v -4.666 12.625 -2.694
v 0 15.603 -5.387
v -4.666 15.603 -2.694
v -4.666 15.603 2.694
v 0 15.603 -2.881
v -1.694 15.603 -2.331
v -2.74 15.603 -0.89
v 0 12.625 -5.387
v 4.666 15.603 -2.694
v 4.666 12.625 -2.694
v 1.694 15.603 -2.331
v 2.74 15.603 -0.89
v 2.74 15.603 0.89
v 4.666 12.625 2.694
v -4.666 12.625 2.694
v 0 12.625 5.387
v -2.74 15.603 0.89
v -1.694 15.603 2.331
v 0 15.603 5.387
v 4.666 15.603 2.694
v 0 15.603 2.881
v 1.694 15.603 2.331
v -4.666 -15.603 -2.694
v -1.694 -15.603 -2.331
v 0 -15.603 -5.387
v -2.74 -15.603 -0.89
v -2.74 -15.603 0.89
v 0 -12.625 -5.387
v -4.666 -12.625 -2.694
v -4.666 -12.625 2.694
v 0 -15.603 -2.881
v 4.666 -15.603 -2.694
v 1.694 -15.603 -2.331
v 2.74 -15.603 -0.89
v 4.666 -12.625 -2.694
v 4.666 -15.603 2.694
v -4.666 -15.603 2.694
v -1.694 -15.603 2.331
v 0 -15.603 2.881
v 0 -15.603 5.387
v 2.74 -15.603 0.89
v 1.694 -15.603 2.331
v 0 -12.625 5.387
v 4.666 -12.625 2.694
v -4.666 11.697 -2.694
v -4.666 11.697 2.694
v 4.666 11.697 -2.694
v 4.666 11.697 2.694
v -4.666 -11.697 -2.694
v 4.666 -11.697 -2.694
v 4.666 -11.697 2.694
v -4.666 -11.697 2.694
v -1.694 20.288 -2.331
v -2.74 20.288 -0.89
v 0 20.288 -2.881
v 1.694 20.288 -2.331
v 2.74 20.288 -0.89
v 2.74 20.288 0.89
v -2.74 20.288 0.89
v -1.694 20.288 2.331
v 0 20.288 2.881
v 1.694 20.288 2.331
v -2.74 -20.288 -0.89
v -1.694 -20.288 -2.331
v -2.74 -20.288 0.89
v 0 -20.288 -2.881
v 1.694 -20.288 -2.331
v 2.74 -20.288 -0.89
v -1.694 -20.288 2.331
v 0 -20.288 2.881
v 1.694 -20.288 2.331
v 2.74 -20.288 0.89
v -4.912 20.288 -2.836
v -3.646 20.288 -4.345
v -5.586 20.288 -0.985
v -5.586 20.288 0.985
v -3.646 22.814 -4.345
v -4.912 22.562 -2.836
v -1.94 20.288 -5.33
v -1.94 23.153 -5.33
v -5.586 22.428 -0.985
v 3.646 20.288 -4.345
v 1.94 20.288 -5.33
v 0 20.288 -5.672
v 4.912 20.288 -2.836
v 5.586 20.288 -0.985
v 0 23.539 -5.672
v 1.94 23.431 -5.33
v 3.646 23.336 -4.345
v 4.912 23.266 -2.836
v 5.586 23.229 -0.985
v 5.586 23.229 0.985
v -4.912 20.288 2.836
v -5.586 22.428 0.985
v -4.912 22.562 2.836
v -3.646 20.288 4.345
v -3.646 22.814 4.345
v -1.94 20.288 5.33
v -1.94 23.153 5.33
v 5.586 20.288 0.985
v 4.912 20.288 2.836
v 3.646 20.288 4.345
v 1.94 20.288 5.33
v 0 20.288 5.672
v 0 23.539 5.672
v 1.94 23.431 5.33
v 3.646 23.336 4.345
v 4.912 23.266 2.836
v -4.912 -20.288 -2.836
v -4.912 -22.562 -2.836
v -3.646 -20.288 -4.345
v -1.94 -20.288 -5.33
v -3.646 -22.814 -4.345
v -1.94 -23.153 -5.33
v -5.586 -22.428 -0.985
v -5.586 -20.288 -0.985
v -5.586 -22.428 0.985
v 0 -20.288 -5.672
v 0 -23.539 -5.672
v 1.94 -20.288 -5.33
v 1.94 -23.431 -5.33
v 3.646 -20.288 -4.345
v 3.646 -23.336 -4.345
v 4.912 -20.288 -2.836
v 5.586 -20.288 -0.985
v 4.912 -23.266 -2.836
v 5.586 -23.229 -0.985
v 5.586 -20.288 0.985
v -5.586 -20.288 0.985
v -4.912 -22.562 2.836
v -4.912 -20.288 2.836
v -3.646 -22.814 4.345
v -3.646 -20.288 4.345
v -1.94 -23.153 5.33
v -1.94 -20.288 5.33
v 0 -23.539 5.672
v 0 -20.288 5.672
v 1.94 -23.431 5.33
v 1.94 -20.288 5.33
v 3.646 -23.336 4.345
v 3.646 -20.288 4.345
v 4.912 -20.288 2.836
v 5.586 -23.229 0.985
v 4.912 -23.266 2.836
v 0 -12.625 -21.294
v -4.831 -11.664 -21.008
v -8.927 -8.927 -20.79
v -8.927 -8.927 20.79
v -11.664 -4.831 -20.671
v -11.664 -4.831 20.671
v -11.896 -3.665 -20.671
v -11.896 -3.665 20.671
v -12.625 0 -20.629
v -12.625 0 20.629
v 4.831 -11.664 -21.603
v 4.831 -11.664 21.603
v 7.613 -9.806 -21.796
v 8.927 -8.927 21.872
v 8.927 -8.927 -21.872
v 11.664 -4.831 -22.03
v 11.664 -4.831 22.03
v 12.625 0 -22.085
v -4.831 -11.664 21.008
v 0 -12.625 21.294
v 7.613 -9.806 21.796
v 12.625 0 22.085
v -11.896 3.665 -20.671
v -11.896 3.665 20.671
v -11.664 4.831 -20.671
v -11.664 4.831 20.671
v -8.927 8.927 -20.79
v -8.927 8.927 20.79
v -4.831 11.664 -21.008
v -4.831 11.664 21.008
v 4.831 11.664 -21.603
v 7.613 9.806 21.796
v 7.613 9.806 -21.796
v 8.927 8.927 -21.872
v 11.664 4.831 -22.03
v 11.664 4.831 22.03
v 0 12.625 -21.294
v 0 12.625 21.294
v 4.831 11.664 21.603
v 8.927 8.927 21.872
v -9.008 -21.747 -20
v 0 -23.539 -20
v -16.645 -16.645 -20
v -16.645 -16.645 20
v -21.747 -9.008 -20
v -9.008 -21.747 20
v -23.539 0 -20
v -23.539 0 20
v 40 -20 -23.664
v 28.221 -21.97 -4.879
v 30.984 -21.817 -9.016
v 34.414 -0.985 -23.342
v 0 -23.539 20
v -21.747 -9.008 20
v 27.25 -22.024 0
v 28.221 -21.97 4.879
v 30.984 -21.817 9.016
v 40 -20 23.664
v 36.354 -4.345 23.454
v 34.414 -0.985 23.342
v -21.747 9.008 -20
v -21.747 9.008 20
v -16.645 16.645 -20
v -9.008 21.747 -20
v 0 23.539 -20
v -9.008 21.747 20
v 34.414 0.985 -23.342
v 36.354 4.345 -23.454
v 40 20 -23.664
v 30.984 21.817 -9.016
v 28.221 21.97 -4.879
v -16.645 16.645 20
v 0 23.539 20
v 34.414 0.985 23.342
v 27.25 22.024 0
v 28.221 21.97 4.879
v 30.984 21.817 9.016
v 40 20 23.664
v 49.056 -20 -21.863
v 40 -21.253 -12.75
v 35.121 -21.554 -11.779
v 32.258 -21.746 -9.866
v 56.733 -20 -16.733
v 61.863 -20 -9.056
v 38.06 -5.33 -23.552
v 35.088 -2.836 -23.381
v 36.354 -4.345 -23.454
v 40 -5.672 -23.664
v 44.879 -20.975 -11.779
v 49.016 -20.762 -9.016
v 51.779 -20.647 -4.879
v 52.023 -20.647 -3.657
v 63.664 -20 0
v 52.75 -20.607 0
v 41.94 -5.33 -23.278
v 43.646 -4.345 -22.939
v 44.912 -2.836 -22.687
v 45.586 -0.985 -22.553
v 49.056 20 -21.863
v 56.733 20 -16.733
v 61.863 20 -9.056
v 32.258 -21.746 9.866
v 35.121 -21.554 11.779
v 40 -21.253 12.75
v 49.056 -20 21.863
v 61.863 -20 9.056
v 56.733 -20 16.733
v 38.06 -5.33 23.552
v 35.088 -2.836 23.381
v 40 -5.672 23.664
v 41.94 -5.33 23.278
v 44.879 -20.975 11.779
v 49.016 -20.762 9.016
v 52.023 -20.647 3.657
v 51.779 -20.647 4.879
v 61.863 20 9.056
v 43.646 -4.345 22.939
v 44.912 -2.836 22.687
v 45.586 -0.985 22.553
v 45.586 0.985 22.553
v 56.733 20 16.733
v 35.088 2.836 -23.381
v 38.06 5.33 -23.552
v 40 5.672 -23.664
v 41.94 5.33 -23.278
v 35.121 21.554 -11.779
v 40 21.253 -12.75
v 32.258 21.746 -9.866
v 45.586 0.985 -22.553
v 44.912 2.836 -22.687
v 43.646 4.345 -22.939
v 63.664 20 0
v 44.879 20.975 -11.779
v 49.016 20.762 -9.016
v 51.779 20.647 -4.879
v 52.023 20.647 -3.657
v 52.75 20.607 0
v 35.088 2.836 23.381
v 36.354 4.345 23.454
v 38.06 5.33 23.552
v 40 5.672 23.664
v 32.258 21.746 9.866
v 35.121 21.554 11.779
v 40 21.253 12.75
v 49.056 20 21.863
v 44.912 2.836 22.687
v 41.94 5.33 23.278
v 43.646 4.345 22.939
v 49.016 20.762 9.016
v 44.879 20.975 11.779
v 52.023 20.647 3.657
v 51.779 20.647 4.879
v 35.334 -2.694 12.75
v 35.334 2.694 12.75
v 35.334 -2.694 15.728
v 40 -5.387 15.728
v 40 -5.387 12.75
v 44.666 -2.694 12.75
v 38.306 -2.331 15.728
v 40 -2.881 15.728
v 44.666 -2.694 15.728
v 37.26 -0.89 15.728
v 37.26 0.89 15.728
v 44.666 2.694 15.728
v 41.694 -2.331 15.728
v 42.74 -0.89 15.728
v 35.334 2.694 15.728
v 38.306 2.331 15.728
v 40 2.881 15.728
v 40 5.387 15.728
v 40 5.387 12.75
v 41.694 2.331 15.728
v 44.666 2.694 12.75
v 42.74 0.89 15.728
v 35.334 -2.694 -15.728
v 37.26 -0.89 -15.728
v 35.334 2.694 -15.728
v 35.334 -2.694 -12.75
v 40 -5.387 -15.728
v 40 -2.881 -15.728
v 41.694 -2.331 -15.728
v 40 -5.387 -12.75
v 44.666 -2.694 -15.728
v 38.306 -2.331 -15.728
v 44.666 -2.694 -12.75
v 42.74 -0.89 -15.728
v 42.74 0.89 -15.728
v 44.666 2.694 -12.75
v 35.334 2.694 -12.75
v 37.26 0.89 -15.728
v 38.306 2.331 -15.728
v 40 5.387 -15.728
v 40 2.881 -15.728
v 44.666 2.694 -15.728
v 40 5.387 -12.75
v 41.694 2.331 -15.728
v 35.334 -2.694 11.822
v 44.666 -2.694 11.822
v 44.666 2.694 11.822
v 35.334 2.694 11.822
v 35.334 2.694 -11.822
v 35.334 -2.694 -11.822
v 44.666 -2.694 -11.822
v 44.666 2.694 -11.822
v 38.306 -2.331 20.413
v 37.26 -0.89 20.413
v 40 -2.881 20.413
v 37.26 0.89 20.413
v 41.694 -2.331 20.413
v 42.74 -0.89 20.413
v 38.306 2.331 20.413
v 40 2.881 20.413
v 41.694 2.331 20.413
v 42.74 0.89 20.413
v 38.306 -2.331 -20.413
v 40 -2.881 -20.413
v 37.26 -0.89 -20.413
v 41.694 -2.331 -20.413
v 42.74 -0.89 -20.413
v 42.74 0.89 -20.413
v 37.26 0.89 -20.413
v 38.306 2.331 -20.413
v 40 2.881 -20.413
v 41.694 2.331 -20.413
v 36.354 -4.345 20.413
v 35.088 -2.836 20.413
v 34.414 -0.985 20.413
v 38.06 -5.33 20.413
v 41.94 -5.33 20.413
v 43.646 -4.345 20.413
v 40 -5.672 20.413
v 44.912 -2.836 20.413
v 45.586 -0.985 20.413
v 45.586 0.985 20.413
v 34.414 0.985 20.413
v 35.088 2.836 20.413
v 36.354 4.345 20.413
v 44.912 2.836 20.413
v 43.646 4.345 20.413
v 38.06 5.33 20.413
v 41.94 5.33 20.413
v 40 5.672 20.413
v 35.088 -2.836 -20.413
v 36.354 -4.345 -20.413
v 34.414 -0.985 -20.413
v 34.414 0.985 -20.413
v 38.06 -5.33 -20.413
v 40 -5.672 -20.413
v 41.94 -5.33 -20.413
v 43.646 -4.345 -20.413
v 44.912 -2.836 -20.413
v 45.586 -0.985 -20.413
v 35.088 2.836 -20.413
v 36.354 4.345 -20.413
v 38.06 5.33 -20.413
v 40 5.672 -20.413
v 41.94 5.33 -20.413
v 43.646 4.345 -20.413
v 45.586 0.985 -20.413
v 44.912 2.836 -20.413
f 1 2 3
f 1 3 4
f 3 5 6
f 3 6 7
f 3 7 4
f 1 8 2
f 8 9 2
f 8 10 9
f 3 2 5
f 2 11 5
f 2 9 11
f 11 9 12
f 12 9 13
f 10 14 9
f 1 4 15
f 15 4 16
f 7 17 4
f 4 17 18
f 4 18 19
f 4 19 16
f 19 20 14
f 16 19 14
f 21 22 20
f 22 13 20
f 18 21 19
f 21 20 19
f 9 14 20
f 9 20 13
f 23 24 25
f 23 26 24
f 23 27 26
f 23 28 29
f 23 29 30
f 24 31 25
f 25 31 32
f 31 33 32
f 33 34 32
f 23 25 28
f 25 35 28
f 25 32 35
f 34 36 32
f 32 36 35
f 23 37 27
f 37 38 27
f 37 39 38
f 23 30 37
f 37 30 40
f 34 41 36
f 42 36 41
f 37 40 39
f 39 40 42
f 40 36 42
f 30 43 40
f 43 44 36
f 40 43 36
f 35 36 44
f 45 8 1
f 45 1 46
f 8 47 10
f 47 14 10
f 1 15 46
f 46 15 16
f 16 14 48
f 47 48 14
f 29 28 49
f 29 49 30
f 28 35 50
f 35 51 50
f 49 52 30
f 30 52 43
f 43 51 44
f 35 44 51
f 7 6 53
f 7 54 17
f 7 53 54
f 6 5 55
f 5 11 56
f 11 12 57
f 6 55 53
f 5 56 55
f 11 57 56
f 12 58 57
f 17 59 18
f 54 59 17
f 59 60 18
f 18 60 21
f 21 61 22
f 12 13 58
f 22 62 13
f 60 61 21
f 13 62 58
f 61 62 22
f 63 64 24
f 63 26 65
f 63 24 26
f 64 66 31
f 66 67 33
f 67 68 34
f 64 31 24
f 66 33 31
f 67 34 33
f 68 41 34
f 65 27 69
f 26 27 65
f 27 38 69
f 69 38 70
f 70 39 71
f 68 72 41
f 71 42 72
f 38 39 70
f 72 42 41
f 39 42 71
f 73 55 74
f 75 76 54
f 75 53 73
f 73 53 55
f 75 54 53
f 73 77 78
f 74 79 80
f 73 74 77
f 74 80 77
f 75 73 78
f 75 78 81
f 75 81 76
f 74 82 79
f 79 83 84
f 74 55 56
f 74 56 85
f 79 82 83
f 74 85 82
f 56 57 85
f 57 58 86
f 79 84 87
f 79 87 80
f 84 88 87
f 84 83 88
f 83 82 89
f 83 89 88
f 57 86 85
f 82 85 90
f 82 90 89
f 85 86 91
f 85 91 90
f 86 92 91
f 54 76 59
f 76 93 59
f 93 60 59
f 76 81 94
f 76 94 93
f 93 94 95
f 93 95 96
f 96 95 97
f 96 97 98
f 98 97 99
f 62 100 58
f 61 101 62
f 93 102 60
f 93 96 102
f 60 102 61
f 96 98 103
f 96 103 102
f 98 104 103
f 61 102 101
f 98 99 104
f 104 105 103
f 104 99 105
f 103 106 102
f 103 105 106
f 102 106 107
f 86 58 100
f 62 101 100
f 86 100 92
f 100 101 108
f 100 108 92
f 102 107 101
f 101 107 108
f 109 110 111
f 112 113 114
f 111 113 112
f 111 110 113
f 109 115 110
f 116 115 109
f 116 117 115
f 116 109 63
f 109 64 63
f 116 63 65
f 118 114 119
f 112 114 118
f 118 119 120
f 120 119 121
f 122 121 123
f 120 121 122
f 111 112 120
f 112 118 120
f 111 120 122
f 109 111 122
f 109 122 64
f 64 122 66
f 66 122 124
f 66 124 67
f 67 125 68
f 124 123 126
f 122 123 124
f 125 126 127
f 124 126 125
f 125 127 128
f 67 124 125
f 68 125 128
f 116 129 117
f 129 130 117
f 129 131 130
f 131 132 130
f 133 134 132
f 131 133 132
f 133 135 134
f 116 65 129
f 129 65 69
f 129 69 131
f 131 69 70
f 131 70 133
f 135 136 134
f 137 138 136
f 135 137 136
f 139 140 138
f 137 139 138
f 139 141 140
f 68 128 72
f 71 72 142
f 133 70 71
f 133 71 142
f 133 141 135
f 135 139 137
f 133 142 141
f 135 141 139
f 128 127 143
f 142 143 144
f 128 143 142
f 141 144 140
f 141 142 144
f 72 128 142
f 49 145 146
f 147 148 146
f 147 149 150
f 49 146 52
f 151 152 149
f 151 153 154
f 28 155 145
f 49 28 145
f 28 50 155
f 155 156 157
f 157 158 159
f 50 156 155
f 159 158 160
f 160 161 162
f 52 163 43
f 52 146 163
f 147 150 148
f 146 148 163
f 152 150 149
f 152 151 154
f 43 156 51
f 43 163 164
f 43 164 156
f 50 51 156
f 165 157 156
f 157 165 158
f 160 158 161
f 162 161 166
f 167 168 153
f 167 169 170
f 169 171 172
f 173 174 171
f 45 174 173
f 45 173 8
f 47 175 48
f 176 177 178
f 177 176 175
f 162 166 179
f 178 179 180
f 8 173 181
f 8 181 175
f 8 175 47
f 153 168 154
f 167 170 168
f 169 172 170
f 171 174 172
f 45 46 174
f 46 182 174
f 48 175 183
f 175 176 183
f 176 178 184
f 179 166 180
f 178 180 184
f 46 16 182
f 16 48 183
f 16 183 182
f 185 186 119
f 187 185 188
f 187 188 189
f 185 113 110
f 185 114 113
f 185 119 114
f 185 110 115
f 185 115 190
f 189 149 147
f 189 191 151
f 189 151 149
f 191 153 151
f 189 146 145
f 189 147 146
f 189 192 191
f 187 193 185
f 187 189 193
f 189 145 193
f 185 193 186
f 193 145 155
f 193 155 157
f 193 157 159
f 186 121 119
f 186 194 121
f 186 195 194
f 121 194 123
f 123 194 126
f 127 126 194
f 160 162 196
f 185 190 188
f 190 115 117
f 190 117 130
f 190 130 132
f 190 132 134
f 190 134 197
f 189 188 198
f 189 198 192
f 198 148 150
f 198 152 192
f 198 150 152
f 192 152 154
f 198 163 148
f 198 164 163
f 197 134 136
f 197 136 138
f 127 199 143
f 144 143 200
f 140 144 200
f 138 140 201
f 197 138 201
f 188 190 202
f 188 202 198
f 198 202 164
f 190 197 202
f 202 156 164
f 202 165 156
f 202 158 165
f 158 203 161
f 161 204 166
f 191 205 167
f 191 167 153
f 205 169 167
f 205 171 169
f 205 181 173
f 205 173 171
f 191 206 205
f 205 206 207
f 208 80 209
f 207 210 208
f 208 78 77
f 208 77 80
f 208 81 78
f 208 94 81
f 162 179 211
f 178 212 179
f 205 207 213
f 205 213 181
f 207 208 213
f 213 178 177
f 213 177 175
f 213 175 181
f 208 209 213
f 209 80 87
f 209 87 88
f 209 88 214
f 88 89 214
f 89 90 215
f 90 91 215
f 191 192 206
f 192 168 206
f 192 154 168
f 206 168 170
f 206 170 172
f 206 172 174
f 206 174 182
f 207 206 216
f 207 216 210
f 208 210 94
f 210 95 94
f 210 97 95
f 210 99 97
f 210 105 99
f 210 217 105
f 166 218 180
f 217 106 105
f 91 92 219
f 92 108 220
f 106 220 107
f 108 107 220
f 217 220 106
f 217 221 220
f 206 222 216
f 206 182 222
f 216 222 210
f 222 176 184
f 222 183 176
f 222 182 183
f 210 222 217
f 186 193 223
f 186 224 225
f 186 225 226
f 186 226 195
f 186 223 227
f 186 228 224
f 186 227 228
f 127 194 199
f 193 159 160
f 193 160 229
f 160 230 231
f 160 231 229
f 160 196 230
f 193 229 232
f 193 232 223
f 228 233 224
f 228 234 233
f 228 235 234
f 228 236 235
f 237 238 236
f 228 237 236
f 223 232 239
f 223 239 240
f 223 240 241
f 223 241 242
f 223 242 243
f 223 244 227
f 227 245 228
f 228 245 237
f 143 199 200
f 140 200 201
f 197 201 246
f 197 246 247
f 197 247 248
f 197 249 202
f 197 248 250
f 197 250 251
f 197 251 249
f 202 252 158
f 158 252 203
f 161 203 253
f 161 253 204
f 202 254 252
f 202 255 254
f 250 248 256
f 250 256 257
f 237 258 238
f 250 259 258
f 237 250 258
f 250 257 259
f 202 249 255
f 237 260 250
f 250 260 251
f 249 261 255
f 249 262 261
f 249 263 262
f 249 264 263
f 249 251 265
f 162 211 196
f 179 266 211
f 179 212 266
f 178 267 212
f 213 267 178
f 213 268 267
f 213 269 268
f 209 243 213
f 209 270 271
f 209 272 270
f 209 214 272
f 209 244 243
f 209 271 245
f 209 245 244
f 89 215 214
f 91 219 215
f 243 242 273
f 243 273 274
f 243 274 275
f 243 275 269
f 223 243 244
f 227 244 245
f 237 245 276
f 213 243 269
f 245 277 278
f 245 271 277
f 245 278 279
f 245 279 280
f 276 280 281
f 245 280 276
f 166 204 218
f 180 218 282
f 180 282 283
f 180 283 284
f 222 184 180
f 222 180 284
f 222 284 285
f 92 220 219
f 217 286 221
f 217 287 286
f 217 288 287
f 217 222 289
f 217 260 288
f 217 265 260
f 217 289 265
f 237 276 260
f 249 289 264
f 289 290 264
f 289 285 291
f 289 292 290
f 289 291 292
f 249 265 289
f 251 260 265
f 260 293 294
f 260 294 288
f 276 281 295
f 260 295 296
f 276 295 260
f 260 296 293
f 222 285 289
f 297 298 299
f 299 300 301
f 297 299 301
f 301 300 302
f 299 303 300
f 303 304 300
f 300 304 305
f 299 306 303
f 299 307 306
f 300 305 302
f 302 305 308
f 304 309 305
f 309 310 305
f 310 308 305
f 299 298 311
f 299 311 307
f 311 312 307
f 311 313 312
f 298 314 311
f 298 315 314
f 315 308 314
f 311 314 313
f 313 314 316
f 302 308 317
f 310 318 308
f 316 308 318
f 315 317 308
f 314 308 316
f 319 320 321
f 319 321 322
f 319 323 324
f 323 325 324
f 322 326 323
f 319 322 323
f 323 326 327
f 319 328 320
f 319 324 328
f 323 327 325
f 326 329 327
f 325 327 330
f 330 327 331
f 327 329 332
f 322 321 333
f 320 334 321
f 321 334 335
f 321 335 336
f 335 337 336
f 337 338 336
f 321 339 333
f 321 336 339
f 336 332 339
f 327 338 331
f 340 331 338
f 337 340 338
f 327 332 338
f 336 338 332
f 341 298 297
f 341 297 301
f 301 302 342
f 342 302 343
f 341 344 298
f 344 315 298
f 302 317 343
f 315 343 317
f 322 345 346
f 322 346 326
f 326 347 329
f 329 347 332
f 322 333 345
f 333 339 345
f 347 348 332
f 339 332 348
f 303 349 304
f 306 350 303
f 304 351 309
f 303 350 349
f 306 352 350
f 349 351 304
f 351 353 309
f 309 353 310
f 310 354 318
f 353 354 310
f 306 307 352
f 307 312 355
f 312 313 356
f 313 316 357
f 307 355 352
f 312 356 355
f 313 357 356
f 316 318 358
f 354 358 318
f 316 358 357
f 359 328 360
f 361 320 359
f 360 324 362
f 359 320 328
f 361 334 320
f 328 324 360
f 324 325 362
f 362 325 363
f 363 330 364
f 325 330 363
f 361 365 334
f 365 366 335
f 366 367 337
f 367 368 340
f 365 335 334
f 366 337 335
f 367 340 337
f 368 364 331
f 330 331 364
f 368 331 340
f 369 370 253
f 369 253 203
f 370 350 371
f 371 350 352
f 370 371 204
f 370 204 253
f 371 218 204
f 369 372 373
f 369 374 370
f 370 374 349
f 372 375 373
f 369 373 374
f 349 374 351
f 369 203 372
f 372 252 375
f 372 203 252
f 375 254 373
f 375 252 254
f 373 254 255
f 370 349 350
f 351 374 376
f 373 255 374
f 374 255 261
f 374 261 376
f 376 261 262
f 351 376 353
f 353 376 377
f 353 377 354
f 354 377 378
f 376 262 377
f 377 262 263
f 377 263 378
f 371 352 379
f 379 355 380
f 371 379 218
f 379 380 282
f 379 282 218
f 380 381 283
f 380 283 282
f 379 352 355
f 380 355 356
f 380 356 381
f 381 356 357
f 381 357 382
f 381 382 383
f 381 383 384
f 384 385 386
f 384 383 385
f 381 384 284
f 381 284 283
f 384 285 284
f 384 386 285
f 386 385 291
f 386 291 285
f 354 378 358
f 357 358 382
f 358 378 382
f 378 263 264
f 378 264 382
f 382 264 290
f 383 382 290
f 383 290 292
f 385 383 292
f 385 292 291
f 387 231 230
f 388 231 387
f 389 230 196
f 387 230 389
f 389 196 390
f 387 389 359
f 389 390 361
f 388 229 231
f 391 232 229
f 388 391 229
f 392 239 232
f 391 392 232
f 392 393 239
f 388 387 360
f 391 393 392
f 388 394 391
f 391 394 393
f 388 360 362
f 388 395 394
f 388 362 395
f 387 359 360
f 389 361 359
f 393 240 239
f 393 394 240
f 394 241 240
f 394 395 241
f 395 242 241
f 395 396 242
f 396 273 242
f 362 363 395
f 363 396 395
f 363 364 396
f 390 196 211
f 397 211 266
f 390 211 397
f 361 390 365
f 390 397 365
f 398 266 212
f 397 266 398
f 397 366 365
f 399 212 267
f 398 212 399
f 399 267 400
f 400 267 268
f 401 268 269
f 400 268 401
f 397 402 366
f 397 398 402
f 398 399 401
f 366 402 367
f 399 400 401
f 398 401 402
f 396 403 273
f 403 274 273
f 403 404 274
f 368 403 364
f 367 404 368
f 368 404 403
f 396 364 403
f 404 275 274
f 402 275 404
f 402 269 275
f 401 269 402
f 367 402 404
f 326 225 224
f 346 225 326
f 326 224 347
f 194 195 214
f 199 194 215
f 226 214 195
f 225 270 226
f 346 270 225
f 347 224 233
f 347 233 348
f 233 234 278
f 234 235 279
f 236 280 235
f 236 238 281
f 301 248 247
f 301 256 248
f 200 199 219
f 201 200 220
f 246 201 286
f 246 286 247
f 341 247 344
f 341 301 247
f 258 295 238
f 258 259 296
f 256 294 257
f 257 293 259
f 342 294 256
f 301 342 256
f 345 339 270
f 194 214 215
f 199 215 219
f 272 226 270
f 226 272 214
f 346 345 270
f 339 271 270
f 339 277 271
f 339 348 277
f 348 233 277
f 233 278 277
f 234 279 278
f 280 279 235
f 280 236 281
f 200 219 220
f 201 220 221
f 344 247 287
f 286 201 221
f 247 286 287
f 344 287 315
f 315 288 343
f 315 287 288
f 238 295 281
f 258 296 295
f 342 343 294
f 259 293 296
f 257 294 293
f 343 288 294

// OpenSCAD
// file: utils/avellanado_americano.scad
// =====================================================
// CALCULADORA DE AVELLANADO - TORNILLOS AMERICANOS
// (Flat Head Wood Screws, numeración ANSI/ASME B18.6.1)
// El diámetro de rosca se ingresa como N° de calibre
// USA (Wood Screw Gauge) o en pulgadas decimales
// Versión cilindro recto - DEMO 3D
// =====================================================
// NOTA: los tornillos de madera americanos se especifican
// por NÚMERO DE CALIBRE (#4, #6, #8, #10, #12) y no por
// diámetro directo como en métrico. A partir de 1/4" ya
// se especifican en pulgadas normales.
// Valores de cabeza (DK, K) tomados de tablas de referencia
// de flat head wood screws - verificar contra fabricante
// si es para producción crítica.
// =====================================================

PULGADA_AM = 25.4;
function pulg_a_mm_am(p) = p * PULGADA_AM;

// -----------------------------------------------------
// Diámetro de vástago (shank) según N° de calibre USA
// (en pulgadas decimales)
// -----------------------------------------------------
function diametro_calibre(numero) =
    numero == 2  ? 0.086 :
    numero == 3  ? 0.099 :
    numero == 4  ? 0.112 :
    numero == 5  ? 0.125 :
    numero == 6  ? 0.138 :
    numero == 7  ? 0.151 :
    numero == 8  ? 0.164 :
    numero == 9  ? 0.177 :
    numero == 10 ? 0.190 :
    numero == 12 ? 0.216 :
    numero == 14 ? 0.242 :
    0.190; // default: N°10

// -----------------------------------------------------
// Función que calcula [DK, K] en mm según el diámetro
// de rosca en PULGADAS decimales (shank diameter)
// Acepta tanto el resultado de diametro_calibre() como
// una pulgada normal (1/4", 5/16", 3/8") directamente
// -----------------------------------------------------
function cabeza_tornillo_americano(D_pulg) =
    D_pulg <= 0.086 ? [pulg_a_mm_am(0.216), pulg_a_mm_am(0.062)] : // N°2
    D_pulg <= 0.099 ? [pulg_a_mm_am(0.242), pulg_a_mm_am(0.070)] : // N°3
    D_pulg <= 0.112 ? [pulg_a_mm_am(0.268), pulg_a_mm_am(0.079)] : // N°4
    D_pulg <= 0.125 ? [pulg_a_mm_am(0.295), pulg_a_mm_am(0.088)] : // N°5
    D_pulg <= 0.138 ? [pulg_a_mm_am(0.320), pulg_a_mm_am(0.096)] : // N°6
    D_pulg <= 0.151 ? [pulg_a_mm_am(0.345), pulg_a_mm_am(0.104)] : // N°7
    D_pulg <= 0.164 ? [pulg_a_mm_am(0.371), pulg_a_mm_am(0.112)] : // N°8
    D_pulg <= 0.177 ? [pulg_a_mm_am(0.397), pulg_a_mm_am(0.120)] : // N°9
    D_pulg <= 0.190 ? [pulg_a_mm_am(0.423), pulg_a_mm_am(0.128)] : // N°10
    D_pulg <= 0.216 ? [pulg_a_mm_am(0.475), pulg_a_mm_am(0.144)] : // N°12
    D_pulg <= 0.242 ? [pulg_a_mm_am(0.507), pulg_a_mm_am(0.153)] : // N°14
    D_pulg <= 0.250 ? [pulg_a_mm_am(0.530), pulg_a_mm_am(0.160)] : // 1/4"
    D_pulg <= 0.3125? [pulg_a_mm_am(0.650), pulg_a_mm_am(0.195)] : // 5/16"
    D_pulg <= 0.375 ? [pulg_a_mm_am(0.770), pulg_a_mm_am(0.230)] : // 3/8"
    [pulg_a_mm_am(D_pulg) * 1.9, pulg_a_mm_am(D_pulg) * 0.55];     // fórmula general

// =====================================================
// MÓDULO SIMPLIFICADO - CILINDRO RECTO
// diametro_rosca_pulg: diámetro de vástago en pulgadas
// (usar diametro_calibre(N) para tornillos por número)
// =====================================================
module avellanado_cilindrico_americano(
    diametro_rosca_pulg,
    profundidad_avellano,
    holgura = 0.3,
    altura_extra = 0,        // Altura adicional del avellanado en mm
    offset_z = 0             // Desplazamiento vertical en mm (default 0)
) {
    datos = cabeza_tornillo_americano(diametro_rosca_pulg);
    diametro_cabeza = datos[0];
    altura_total = profundidad_avellano + altura_extra;

    translate([0, 0, offset_z])
        cylinder(h = altura_total,
                 r = (diametro_cabeza/2) + holgura);
}

// =====================================================
// MÓDULO PARA AGUJERO PASANTE (solo diámetro)
// =====================================================
module agujero_pasante_americano(
    diametro_rosca_pulg,
    profundidad,
    profundidad_avellano = 0,
    holgura = 0.5,
    profundidad_abs = true,
    altura_extra = 0,        // Altura adicional del agujero en mm
    offset_z = 0             // Desplazamiento vertical en mm (default 0)
) {
    diametro_rosca_mm = pulg_a_mm_am(diametro_rosca_pulg);

    if (profundidad_abs)
        translate([0, 0, profundidad_avellano + offset_z])
            cylinder(h = profundidad - profundidad_avellano + altura_extra,
                     r = (diametro_rosca_mm/2) + holgura);
    else
        translate([0, 0, profundidad_avellano + offset_z])
            cylinder(h = profundidad + altura_extra,
                     r = (diametro_rosca_mm/2) + holgura);
}

// =====================================================
// MÓDULO COMBINADO - AVELLANADO + AGUJERO PASANTE
// =====================================================
module agujero_con_avellanado_americano(
    diametro_rosca_pulg,
    profundidad_avellano,
    profundidad_pieza,
    holgura_avellano = 0.3,
    holgura_pasante = 0.5,
    profundidad_abs = true,
    altura_extra = 0,        // Altura adicional del avellanado en mm
    offset_z = 0,            // Desplazamiento vertical en mm (default 0)
    altura_extra_pasante = 0,// Altura adicional del agujero en mm
    offset_z_pasante = 0     // Desplazamiento vertical del agujero en mm (default 0)
) {
    avellanado_cilindrico_americano(
        diametro_rosca_pulg = diametro_rosca_pulg,
        profundidad_avellano = profundidad_avellano,
        holgura = holgura_avellano,
        altura_extra = altura_extra,
        offset_z = offset_z
    );

    agujero_pasante_americano(
        diametro_rosca_pulg = diametro_rosca_pulg,
        profundidad = profundidad_pieza,
        profundidad_avellano = profundidad_avellano,
        holgura = holgura_pasante,
        profundidad_abs = profundidad_abs,
        altura_extra = altura_extra_pasante,
        offset_z = offset_z_pasante
    );
}

// Funciones de utilidad
function diametro_cabeza_americano(D_pulg) = cabeza_tornillo_americano(D_pulg)[0];
function altura_cabeza_americano(D_pulg) = cabeza_tornillo_americano(D_pulg)[1];

// =====================================================
// DEMO 3D: placa con 3 avellanados de distinto calibre
// margen de corte para evitar z-fighting en el booleano
// =====================================================
margen_corte_am = 0.5;
espesor_placa_am = 12;   // mm - grosor de la placa demo
ancho_placa_am   = 100;
largo_placa_am   = 40;

module placa_demo_americana() {
    difference() {
        // Placa base
        translate([-10, -largo_placa_am/2, 0])
            cube([ancho_placa_am, largo_placa_am, espesor_placa_am]);

        // Tornillo N°8, entra por la cara superior
        translate([10, 0, espesor_placa_am])
            rotate([0, 180, 0])
                agujero_con_avellanado_americano(
                    diametro_rosca_pulg = diametro_calibre(8),
                    profundidad_avellano = 3.0,
                    profundidad_pieza = espesor_placa_am + margen_corte_am
                );

        // Tornillo N°10, entra por la cara superior
        translate([40, 0, espesor_placa_am])
            rotate([0, 180, 0])
                agujero_con_avellanado_americano(
                    diametro_rosca_pulg = diametro_calibre(10),
                    profundidad_avellano = 3.5,
                    profundidad_pieza = espesor_placa_am + margen_corte_am
                );

        // Tornillo 1/4", entra por la cara inferior
        // (demuestra profundidad_abs = false)
        translate([70, 0, 0])
            agujero_con_avellanado_americano(
                diametro_rosca_pulg = 0.25,
                profundidad_avellano = 4.0,
                profundidad_pieza = espesor_placa_am + margen_corte_am,
                profundidad_abs = false
            );
    }
}

placa_demo_americana();
// file: utils/avellanado_whitworth.scad
// =====================================================
// CALCULADORA DE AVELLANADO - TORNILLOS WHITWORTH (BSW)
// El diámetro de rosca se ingresa en PULGADAS (decimal)
// Ej: 1/4" = 0.25 , 3/8" = 0.375 , 1/2" = 0.5
// =====================================================

PULGADA = 25.4; // mm por pulgada

// Convierte pulgadas a mm
function pulg_a_mm(p) = p * PULGADA;

// Tabla de diámetros nominales Whitworth más comunes (en pulgadas)
// junto a su equivalente en mm, para referencia:
// 1/8"  = 3.175 mm      5/16" = 7.938 mm      5/8" = 15.875 mm
// 3/16" = 4.763 mm      3/8"  = 9.525 mm      3/4" = 19.050 mm
// 1/4"  = 6.350 mm      7/16" = 11.113 mm     7/8" = 22.225 mm
// 5/16" = 7.938 mm      1/2"  = 12.700 mm     1"   = 25.400 mm

// Función que calcula [DK, K] en mm según el diámetro de rosca
// D_pulg: diámetro nominal en pulgadas (ej: 0.25 para 1/4")
// NOTA: al no existir una norma DIN/ISO de cabeza avellanada para
// Whitworth, se usa la regla práctica DK≈2*D, K≈0.6*D.
// Ajustar si contás con la tabla real del fabricante.
function cabeza_tornillo_whitworth(D_pulg) =
    let(D = pulg_a_mm(D_pulg))
    [D * 2.0, D * 0.6];

// =====================================================
// MÓDULO: AVELLANADO PARA TORNILLO WHITWORTH
// =====================================================
module avellanado_cilindrico_whitworth(
    diametro_rosca_pulg,      // Diámetro del tornillo en PULGADAS
    profundidad_avellano,     // Profundidad del avellanado en mm
    holgura = 0.3             // Holgura para el diámetro en mm
) {
    datos = cabeza_tornillo_whitworth(diametro_rosca_pulg);
    diametro_cabeza = datos[0];

    translate([0, 0, 0])
        cylinder(h = profundidad_avellano,
                 r = (diametro_cabeza/2) + holgura);
}

// =====================================================
// MÓDULO: AGUJERO PASANTE PARA TORNILLO WHITWORTH
// =====================================================
module agujero_pasante_whitworth(
    diametro_rosca_pulg,       // Diámetro del tornillo en PULGADAS
    profundidad,                // Profundidad total del agujero
    profundidad_avellano = 0,   // Suma del hueco de avellanado
    holgura = 0.5,               // Holgura para el diámetro en mm
    profundidad_abs = true
) {
    diametro_rosca_mm = pulg_a_mm(diametro_rosca_pulg);

    if (profundidad_abs)
        translate([0, 0, profundidad_avellano])
            cylinder(h = profundidad - profundidad_avellano,
                     r = (diametro_rosca_mm/2) + holgura);
    else
        translate([0, 0, profundidad_avellano])
            cylinder(h = profundidad,
                     r = (diametro_rosca_mm/2) + holgura);
}

// =====================================================
// MÓDULO COMBINADO - AVELLANADO + AGUJERO (WHITWORTH)
// =====================================================
module agujero_con_avellanado_whitworth(
    diametro_rosca_pulg,        // Diámetro del tornillo en PULGADAS
    profundidad_avellano,       // Profundidad del avellanado en mm
    profundidad_pieza,          // Grosor total de la pieza en mm
    holgura_avellano = 0.3,
    holgura_pasante = 0.5,
    profundidad_abs = true
) {
    avellanado_cilindrico_whitworth(
        diametro_rosca_pulg = diametro_rosca_pulg,
        profundidad_avellano = profundidad_avellano,
        holgura = holgura_avellano
    );

    agujero_pasante_whitworth(
        diametro_rosca_pulg = diametro_rosca_pulg,
        profundidad = profundidad_pieza,
        profundidad_avellano = profundidad_avellano,
        holgura = holgura_pasante,
        profundidad_abs = profundidad_abs
    );
}

// Funciones de utilidad
function diametro_cabeza_whitworth(D_pulg) = cabeza_tornillo_whitworth(D_pulg)[0];
function altura_cabeza_whitworth(D_pulg) = cabeza_tornillo_whitworth(D_pulg)[1];

// =====================================================
// EJEMPLO: tornillo Whitworth 5/16" (0.3125"), avellanado
// de 4.5mm de profundidad, pieza de 9.5mm de espesor
// =====================================================
agujero_con_avellanado_whitworth(5/16, 4.5, 9.5);
// file: utils/avellanado_metrico.scad
// =====================================================
// CALCULADORA SIMPLIFICADA DE AVELLANADO
// Para tornillos de madera - Versión cilindro recto
// =====================================================

// Función que calcula el diámetro de cabeza y altura 
// según el diámetro de la rosca (D) en mm
function cabeza_tornillo(D) = 
    D <= 3 ? [5.6, 1.65] :    // [DK, K] para M3
    D <= 4 ? [7.5, 2.2] :     // M4
    D <= 5 ? [9.2, 2.5] :     // M5
    D <= 6 ? [11.0, 3.0] :    // M6
    D <= 8 ? [14.5, 4.0] :    // M8
    D <= 10 ? [18.0, 5.0] :   // M10
    D <= 12 ? [22.0, 6.0] :   // M12
    D <= 14 ? [26.0, 7.0] :   // M14
    D <= 16 ? [30.0, 8.0] :   // M16
    [D * 1.8, D * 0.5];       // Fórmula general

// =====================================================
// MÓDULO SIMPLIFICADO - CILINDRO RECTO
// =====================================================
module avellanado_cilindrico(
    diametro_rosca,          // Diámetro del tornillo en mm
    profundidad_avellano,    // Profundidad del avellanado en mm
    holgura = 0.3            // Holgura para el diámetro
) {
    // Obtener dimensiones de la cabeza
    datos = cabeza_tornillo(diametro_rosca);
    diametro_cabeza = datos[0];
    
    // Crear el cilindro del avellanado
    translate([0, 0, 0]) 
        cylinder(h = profundidad_avellano, 
                 r = (diametro_cabeza/2) + holgura);
}

// =====================================================
// MÓDULO PARA AGUJERO PASANTE (solo diámetro)
// =====================================================
module agujero_pasante(
    diametro_rosca,          // Diámetro del tornillo en mm
    profundidad,       // Profundidad total del agujero (grosor de la pieza)
    profundidad_avellano=0,// suma del hueco de avellanado
    holgura = 0.5,            // Holgura para el diámetro
    profundidad_abs=true
) {
  if(profundidad_abs)
   translate([0, 0, profundidad_avellano]) 
        cylinder(h = profundidad -profundidad_avellano , 
                 r = (diametro_rosca/2) + holgura);
  
   else
    // Crear agujero cilíndrico pasante
    translate([0, 0, profundidad_avellano]) 
        cylinder(h = profundidad, 
                 r = (diametro_rosca/2) + holgura);
  
}

// =====================================================
// MÓDULO COMBINADO - AVELLANADO + AGUJERO PASANTE
// =====================================================
module agujero_con_avellanado(
    diametro_rosca,          // Diámetro del tornillo en mm
    profundidad_avellano,    // Profundidad del avellanado en mm
    profundidad_pieza,       // Grosor total de la pieza en mm
    holgura_avellano = 0.3,  // Holgura para el avellanado
    holgura_pasante = 0.5,    // Holgura para el agujero pasante
    profundidad_abs=true,
) {
    // Avellanado (cilindro recto)
   avellanado_cilindrico(
        diametro_rosca = diametro_rosca,
        profundidad_avellano = profundidad_avellano,
        holgura = holgura_avellano
    );
  
    // Agujero pasante (desde el fondo del avellanado hasta el final)
        agujero_pasante(
            diametro_rosca = diametro_rosca,
            profundidad = profundidad_pieza ,
            profundidad_avellano= profundidad_avellano,
            holgura = holgura_pasante,
            profundidad_abs=profundidad_abs
        );
}


// =====================================================
// FUNCIONES DE UTILIDAD
// =====================================================

// Función para obtener solo el diámetro de cabeza
function diametro_cabeza(D) = cabeza_tornillo(D)[0];

// Función para obtener solo la altura de cabeza
function altura_cabeza(D) = cabeza_tornillo(D)[1];

// =====================================================
// VISUALIZACIÓN DE EJEMPLOS
// =====================================================
translate([-20, 0, 0])
rotate([0.,180,0]){
agujero_con_avellanado(8, 4.5, 9.5);
 }
agujero_con_avellanado(8, 4.5, 9.5);

translate([20, 0, 0])
agujero_con_avellanado(8, 4.5, 9.5,profundidad_abs=false);
// main file
//use <hueco_baqueta.scad>;
//
//
//difference() {
//    baqueta_solida(ancho_baqueta=60);
//    
//   translate([ -10,0, 0])
//   hueco_baqueta(cantidad_tornillos=2);
//
//    translate([ 10,0, 0])rotate([90, 0, 0])
//    hueco_baqueta(cantidad_tornillos=2);
//}
use <juntas.scad>;
// holgura para pico de 0.8 en bambu a1l version extra draft custom
holgura_a       = 1.25;    // holgura radial extremo A
holgura_b       = 1.5;    // holgura radial extremo B

junta_doble(holgura_a=holgura_a, holgura_b=holgura_b);
